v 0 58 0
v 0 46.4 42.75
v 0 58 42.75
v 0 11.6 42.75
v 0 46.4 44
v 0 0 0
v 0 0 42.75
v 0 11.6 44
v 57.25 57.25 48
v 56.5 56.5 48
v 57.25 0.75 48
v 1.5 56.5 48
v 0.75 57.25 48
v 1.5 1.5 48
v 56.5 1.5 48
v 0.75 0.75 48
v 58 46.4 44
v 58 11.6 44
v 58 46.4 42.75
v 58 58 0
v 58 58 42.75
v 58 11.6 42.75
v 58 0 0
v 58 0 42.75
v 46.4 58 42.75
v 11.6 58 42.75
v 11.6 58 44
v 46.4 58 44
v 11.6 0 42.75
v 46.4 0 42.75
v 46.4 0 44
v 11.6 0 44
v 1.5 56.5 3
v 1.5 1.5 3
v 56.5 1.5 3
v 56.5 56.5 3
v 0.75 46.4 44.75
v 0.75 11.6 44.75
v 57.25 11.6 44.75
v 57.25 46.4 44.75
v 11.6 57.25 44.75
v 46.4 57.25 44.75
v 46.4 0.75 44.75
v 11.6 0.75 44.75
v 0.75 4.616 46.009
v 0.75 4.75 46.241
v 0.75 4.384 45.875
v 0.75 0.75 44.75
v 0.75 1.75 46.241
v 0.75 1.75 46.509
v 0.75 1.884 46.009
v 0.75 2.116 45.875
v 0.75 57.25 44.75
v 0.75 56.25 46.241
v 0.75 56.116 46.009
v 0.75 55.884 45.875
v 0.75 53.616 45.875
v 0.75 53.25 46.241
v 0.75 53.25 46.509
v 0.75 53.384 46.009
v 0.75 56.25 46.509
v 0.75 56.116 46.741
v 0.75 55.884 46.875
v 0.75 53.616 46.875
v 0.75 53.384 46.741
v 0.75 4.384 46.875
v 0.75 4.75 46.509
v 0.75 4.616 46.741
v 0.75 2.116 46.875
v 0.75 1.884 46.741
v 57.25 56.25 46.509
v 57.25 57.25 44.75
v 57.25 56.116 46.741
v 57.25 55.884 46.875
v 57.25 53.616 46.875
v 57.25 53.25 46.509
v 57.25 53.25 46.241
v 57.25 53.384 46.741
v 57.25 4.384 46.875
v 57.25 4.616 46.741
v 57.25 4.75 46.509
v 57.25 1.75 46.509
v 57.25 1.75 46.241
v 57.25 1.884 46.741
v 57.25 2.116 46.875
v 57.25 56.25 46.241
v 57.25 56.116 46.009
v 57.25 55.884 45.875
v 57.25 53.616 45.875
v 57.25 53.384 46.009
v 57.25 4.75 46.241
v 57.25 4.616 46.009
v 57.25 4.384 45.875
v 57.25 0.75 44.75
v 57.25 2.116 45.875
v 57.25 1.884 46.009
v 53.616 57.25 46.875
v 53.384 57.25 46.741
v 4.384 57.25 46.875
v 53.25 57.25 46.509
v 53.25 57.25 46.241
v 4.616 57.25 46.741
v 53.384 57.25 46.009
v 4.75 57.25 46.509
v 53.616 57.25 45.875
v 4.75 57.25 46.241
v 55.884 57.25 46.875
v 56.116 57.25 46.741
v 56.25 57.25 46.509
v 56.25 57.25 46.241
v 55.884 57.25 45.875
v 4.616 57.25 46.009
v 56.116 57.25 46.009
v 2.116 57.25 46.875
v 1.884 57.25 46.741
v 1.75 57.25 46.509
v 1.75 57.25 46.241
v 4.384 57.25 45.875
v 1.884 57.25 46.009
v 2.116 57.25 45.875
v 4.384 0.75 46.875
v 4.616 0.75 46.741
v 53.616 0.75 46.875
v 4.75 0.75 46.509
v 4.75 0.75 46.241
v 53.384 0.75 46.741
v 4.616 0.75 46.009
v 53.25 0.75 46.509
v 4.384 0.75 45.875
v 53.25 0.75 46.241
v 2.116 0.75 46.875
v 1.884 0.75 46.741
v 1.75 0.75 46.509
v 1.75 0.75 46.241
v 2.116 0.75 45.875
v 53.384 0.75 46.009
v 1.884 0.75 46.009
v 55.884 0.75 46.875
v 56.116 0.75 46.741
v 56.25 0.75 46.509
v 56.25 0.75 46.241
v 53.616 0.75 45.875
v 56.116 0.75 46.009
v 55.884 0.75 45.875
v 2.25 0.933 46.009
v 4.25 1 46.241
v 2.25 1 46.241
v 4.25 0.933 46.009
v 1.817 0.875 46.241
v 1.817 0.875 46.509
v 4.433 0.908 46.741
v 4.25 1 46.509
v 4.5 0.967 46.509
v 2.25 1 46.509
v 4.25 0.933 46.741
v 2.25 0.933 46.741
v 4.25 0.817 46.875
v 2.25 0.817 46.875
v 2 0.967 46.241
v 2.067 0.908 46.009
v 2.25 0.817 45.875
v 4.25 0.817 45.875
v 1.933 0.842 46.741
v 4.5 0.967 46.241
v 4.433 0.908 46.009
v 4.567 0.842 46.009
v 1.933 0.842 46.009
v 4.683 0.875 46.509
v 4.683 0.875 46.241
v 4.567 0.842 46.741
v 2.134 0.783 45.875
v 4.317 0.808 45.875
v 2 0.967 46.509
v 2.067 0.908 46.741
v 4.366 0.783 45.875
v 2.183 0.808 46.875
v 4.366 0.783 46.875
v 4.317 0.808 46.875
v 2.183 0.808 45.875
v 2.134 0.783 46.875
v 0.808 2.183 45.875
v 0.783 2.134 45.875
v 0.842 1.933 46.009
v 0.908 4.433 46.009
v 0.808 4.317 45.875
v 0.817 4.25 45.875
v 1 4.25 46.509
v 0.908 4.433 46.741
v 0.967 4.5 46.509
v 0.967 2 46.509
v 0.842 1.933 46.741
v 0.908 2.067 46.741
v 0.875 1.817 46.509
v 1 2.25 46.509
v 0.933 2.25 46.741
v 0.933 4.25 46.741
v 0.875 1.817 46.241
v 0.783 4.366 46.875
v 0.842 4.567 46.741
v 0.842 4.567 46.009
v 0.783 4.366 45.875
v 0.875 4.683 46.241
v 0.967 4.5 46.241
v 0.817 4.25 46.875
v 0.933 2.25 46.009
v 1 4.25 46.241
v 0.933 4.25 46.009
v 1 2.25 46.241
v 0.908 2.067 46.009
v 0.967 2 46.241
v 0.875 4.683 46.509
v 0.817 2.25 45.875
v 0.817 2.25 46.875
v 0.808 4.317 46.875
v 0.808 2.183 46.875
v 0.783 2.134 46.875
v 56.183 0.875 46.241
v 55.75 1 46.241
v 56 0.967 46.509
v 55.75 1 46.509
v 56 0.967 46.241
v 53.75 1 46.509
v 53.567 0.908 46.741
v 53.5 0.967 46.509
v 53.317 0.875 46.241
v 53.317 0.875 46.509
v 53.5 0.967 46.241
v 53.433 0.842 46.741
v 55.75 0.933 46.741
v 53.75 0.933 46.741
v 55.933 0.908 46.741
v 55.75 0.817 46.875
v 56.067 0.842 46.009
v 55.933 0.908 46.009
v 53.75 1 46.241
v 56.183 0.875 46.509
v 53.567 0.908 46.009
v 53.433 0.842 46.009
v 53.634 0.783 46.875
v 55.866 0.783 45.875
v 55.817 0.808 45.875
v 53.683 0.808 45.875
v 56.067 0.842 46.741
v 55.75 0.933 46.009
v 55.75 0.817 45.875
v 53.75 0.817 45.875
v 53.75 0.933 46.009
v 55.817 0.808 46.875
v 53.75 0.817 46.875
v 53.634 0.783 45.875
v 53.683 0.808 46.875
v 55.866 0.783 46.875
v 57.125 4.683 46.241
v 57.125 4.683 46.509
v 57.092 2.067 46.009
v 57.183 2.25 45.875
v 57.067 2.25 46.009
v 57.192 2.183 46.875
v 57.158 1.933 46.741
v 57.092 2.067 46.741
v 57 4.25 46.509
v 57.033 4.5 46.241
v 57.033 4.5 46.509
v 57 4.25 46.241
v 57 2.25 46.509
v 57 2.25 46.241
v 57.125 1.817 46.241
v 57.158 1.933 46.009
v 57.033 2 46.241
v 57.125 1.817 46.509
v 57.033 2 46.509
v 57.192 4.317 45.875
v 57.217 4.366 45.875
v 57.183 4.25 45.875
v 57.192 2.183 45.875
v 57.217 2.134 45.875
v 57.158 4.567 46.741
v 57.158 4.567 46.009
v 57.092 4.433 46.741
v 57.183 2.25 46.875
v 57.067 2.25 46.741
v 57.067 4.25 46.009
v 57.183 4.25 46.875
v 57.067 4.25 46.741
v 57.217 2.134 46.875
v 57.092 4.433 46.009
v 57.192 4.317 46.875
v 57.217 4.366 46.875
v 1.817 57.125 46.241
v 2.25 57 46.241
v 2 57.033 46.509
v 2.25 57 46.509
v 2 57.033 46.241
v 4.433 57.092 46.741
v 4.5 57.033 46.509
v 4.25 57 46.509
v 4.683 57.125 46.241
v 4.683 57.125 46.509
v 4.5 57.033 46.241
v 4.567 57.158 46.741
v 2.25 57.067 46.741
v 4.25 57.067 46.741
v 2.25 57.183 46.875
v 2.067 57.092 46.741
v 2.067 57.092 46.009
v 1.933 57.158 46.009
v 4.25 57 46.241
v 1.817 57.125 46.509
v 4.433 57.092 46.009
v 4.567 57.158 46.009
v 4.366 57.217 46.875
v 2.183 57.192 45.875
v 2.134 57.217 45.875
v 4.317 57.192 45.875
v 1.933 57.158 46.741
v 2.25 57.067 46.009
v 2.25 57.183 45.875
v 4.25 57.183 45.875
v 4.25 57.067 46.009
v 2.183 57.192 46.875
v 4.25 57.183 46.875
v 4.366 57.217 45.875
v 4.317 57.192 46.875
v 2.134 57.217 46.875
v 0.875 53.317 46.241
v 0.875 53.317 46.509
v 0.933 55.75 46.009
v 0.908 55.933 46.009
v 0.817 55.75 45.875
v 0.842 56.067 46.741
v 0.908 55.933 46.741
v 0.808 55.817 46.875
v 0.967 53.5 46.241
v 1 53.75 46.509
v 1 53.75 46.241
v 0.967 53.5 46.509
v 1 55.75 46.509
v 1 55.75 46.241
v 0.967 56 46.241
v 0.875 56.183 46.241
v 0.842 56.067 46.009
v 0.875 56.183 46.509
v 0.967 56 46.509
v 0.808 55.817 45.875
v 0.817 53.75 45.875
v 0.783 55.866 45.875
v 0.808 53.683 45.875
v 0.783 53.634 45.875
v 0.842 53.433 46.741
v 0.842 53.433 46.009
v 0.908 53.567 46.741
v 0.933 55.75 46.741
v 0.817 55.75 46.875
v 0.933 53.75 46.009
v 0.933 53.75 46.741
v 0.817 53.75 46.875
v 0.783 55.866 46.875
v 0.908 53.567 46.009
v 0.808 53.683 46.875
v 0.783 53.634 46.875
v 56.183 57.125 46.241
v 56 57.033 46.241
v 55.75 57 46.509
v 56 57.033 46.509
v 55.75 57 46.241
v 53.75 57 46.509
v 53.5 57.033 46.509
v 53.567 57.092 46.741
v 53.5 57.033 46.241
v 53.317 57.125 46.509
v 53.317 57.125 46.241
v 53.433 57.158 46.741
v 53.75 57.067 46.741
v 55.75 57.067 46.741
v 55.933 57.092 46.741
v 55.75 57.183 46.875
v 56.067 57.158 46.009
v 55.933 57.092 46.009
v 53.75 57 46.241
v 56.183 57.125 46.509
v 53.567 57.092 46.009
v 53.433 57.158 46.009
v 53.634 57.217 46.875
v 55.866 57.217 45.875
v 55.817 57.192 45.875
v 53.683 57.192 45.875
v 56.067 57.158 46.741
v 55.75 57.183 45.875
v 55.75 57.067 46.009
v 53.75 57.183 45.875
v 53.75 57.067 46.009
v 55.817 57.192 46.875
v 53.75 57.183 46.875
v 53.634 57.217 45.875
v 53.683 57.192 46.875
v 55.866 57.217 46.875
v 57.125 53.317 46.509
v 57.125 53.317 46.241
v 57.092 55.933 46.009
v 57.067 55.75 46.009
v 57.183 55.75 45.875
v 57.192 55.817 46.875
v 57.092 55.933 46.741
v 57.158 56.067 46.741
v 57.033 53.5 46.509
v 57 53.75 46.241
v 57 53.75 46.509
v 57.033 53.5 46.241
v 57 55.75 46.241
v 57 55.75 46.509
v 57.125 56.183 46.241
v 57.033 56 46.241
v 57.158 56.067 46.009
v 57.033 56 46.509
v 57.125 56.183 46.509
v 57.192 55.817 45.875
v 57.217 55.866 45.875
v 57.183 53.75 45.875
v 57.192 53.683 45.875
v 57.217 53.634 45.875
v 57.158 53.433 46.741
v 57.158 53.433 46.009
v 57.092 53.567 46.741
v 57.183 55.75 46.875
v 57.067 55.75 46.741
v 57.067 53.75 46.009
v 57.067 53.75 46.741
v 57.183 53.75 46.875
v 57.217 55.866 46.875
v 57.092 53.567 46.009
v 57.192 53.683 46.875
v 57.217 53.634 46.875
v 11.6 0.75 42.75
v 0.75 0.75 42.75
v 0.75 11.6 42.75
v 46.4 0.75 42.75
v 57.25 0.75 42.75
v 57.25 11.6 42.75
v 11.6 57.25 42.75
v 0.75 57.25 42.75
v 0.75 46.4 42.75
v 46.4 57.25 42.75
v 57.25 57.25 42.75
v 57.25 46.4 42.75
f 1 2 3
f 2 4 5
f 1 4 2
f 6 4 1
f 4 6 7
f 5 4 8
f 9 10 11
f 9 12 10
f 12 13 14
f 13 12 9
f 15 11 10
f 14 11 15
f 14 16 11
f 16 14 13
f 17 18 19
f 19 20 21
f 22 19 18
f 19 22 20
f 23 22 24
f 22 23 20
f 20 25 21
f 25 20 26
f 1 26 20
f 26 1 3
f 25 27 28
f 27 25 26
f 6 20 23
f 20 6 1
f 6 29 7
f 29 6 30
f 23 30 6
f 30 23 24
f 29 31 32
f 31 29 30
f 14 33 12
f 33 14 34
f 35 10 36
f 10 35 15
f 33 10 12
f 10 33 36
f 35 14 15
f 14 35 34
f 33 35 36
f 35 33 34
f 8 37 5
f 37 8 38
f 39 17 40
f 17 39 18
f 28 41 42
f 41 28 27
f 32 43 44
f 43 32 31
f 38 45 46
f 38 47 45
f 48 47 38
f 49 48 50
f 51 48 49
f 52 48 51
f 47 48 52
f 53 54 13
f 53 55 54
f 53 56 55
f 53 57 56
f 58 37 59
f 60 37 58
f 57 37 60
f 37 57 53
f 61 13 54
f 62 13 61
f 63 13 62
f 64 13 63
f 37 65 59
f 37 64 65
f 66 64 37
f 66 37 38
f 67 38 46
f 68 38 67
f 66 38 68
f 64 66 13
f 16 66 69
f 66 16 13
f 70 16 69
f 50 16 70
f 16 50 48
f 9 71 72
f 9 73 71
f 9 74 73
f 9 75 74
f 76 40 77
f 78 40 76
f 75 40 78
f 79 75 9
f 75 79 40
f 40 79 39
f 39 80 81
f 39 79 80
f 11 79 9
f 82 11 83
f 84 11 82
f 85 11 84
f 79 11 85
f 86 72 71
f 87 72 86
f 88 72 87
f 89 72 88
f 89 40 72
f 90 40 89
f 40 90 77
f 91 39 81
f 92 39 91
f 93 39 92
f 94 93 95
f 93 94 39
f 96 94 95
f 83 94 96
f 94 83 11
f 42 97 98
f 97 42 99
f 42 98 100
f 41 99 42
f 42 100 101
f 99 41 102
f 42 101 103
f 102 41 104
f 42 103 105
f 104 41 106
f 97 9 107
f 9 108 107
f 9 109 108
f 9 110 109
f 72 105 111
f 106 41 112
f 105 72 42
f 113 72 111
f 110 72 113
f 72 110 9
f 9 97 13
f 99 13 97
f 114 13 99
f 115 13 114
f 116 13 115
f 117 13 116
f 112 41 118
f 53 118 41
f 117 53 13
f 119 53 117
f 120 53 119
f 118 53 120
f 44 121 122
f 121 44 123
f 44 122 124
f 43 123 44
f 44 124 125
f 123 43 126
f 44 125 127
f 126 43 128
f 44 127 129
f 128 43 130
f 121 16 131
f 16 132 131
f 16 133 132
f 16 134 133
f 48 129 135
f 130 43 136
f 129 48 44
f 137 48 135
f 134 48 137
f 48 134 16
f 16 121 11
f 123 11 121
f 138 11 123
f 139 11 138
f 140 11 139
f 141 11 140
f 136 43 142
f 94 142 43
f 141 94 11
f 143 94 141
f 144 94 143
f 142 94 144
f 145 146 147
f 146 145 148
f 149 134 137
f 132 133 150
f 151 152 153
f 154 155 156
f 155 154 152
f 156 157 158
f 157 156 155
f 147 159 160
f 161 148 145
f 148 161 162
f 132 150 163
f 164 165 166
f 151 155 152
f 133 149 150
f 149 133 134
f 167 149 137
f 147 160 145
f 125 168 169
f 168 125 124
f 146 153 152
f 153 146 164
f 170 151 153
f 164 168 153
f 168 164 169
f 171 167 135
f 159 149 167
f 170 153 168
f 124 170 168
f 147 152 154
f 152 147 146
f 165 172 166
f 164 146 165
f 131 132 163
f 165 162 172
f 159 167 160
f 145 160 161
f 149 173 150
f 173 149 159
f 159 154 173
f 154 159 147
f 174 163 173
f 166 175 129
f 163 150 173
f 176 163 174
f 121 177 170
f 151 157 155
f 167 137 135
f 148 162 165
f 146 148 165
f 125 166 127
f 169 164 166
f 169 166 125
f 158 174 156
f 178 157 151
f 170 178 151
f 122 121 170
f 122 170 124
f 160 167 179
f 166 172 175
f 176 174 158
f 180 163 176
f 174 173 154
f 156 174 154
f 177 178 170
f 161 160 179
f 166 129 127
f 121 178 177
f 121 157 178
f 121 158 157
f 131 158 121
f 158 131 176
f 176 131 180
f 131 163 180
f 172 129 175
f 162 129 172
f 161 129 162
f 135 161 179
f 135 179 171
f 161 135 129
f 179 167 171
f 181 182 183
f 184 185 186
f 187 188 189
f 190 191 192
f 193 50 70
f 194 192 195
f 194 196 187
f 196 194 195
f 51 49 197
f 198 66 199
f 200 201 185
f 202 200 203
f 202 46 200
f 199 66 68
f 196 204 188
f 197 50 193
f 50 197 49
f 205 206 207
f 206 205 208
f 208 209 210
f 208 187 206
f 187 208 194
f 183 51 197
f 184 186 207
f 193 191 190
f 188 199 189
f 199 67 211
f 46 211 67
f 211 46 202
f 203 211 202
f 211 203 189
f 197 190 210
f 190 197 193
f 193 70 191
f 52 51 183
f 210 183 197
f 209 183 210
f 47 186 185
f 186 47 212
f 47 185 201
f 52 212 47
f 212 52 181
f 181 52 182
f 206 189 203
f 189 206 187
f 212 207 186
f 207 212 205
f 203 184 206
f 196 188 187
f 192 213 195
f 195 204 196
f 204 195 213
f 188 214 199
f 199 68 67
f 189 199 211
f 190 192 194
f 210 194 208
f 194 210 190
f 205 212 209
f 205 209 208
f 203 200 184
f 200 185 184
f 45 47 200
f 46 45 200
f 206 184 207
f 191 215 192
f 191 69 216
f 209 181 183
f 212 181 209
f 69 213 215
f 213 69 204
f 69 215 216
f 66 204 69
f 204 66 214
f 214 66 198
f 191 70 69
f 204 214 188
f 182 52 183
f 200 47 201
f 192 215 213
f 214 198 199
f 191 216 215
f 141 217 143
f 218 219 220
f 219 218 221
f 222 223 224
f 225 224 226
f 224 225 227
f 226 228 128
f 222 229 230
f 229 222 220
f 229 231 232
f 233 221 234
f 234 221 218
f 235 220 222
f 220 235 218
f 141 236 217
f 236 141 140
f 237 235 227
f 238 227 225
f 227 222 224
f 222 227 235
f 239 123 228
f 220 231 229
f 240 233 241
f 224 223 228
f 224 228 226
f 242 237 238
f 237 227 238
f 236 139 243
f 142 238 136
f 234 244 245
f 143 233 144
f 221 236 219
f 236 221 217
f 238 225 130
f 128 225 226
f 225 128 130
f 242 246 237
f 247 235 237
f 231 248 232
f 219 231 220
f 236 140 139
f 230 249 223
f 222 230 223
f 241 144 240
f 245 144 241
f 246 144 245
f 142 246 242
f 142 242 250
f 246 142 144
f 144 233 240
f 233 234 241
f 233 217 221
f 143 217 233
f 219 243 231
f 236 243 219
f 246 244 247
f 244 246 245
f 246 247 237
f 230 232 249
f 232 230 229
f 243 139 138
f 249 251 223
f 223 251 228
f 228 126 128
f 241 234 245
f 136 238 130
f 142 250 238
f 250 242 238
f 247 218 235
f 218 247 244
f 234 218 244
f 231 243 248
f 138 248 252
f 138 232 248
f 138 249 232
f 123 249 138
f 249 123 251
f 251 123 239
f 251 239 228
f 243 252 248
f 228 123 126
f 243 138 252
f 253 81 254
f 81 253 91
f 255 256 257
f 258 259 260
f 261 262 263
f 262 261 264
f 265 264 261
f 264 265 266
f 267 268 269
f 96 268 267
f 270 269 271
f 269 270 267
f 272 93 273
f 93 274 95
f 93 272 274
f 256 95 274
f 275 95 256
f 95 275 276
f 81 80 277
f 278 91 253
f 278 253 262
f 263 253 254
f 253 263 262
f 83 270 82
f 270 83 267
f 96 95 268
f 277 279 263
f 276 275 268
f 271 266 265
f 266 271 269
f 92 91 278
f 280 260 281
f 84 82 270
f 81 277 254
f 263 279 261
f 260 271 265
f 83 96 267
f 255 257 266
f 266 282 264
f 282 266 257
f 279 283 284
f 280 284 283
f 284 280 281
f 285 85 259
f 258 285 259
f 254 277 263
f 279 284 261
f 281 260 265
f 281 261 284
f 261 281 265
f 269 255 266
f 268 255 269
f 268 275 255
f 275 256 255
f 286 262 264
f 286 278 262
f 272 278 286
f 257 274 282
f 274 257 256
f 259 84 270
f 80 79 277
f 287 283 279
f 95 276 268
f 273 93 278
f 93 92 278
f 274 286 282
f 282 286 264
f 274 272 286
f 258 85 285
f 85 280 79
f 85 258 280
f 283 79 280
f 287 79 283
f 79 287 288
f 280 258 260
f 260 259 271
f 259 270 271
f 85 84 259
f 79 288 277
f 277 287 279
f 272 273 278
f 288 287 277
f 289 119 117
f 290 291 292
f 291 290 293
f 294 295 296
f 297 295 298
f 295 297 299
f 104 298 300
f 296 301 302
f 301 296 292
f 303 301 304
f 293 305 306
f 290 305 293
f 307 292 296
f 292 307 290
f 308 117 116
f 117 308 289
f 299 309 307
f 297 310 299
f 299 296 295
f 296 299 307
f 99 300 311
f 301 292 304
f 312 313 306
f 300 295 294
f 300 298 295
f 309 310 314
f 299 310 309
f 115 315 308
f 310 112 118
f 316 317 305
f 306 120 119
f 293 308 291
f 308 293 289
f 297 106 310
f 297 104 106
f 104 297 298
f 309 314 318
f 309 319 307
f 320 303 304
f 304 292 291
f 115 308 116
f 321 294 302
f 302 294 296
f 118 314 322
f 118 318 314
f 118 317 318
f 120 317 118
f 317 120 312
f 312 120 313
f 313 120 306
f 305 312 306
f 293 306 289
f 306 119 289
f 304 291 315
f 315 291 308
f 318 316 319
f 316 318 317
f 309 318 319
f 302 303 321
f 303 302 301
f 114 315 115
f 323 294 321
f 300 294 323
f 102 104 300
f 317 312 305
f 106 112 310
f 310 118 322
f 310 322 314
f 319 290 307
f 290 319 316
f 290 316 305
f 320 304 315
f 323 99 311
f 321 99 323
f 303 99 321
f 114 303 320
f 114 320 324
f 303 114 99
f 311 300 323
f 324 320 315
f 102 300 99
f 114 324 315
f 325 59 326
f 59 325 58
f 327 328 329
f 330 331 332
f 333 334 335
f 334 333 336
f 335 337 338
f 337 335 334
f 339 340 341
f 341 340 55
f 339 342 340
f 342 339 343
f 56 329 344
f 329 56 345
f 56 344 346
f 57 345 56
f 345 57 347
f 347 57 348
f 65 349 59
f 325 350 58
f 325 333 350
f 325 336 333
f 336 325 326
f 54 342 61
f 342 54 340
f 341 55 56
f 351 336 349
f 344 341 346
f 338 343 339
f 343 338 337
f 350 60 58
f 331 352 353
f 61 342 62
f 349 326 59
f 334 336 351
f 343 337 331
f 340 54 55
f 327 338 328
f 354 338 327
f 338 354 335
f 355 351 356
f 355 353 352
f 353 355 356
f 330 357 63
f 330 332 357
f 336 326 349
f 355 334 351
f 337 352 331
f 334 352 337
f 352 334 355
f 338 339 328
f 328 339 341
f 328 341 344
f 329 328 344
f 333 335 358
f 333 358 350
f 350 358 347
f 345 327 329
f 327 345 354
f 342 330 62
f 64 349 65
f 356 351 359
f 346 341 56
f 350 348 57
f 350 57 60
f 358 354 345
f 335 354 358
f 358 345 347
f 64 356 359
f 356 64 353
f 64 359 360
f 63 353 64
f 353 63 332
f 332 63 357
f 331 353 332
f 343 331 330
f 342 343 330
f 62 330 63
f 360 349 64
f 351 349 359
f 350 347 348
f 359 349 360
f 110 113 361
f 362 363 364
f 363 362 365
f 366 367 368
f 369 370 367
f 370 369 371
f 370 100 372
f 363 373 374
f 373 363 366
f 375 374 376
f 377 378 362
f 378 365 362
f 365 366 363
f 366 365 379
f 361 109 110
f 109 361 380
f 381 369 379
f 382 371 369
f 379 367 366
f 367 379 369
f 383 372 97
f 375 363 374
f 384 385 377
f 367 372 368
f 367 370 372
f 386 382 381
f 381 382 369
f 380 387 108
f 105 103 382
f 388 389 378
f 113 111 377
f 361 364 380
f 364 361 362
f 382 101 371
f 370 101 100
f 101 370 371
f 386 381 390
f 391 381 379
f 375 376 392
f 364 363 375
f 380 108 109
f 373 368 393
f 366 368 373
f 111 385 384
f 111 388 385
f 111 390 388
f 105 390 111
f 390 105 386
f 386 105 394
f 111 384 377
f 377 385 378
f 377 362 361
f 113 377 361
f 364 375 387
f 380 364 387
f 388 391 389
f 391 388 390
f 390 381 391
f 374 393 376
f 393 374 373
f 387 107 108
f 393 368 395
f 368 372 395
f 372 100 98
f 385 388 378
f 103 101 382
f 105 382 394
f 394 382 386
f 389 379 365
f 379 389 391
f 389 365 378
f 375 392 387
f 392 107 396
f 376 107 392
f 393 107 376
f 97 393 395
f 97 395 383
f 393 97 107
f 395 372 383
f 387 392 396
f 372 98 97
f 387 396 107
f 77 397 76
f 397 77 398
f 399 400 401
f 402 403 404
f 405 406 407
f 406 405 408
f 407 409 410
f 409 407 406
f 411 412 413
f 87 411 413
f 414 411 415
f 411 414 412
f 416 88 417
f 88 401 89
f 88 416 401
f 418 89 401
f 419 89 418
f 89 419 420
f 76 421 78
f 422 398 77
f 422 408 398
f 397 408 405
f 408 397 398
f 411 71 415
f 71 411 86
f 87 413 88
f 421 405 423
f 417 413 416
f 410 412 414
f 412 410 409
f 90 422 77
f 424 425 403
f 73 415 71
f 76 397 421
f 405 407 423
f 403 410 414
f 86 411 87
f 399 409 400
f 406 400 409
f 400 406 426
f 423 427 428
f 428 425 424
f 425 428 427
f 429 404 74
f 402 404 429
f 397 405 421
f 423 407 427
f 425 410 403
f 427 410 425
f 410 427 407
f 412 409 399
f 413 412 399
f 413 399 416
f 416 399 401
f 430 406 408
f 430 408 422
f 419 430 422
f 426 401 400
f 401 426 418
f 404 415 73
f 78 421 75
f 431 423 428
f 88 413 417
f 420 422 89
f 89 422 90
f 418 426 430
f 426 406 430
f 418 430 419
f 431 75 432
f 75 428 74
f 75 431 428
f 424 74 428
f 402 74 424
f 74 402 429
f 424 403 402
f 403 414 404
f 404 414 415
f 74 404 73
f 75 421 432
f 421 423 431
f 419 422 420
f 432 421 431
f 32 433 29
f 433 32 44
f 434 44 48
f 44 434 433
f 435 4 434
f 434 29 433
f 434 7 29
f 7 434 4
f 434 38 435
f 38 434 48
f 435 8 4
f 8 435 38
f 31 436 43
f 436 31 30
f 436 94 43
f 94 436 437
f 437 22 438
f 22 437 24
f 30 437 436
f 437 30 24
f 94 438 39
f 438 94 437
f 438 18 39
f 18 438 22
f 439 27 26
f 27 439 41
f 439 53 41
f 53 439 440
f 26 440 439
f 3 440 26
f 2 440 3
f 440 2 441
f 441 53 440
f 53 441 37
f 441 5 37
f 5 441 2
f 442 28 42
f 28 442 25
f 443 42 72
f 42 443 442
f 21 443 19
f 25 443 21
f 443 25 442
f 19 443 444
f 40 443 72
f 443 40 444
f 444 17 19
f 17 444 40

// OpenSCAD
include <boardgame_insert_toolkit_lib.2.scad>;

// determines whether lids are output.
g_b_print_lid = false;

// determines whether boxes are output.
g_b_print_box = true; 

// Focus on one box
// g_isolated_print_box = ""; 

// Used to visualize how all of the boxes fit together. 
g_b_visualization = false;          
        
// this is the outer wall thickness. 
//Default = 1.5mm
g_wall_thickness = 1.5;

// The tolerance value is extra space put between planes of the lid and box that fit together.
// Increase the tolerance to loosen the fit and decrease it to tighten it.
//
// Note that the tolerance is applied exclusively to the lid.
// So if the lid is too tight or too loose, change this value ( up for looser fit, down for tighter fit ) and 
// you only need to reprint the lid.
// 
// The exception is the stackable box, where the bottom of the box is the lid of the box below,
// in which case the tolerance also affects that box bottom.
//
g_tolerance = 0.15;

// This adjusts the position of the lid detents downward. 
// The larger the value, the bigger the gap between the lid and the box.
g_tolerance_detents_pos = 0.1;

data =
[
    [   "jf_icecreambox",
        [
            [ BOX_SIZE_XYZ,                                     [58, 58, 48] ],
            [ BOX_LID,
                [
                    [ LID_SOLID_B, f],
                    [LID_FIT_UNDER_B, f]
                ]
            ],
            [ BOX_COMPONENT,
                [
                    [CMP_COMPARTMENT_SIZE_XYZ,  [ 55, 55, 45] ],
                ]
            ],                            
        ]
    ],
];


MakeAll();
